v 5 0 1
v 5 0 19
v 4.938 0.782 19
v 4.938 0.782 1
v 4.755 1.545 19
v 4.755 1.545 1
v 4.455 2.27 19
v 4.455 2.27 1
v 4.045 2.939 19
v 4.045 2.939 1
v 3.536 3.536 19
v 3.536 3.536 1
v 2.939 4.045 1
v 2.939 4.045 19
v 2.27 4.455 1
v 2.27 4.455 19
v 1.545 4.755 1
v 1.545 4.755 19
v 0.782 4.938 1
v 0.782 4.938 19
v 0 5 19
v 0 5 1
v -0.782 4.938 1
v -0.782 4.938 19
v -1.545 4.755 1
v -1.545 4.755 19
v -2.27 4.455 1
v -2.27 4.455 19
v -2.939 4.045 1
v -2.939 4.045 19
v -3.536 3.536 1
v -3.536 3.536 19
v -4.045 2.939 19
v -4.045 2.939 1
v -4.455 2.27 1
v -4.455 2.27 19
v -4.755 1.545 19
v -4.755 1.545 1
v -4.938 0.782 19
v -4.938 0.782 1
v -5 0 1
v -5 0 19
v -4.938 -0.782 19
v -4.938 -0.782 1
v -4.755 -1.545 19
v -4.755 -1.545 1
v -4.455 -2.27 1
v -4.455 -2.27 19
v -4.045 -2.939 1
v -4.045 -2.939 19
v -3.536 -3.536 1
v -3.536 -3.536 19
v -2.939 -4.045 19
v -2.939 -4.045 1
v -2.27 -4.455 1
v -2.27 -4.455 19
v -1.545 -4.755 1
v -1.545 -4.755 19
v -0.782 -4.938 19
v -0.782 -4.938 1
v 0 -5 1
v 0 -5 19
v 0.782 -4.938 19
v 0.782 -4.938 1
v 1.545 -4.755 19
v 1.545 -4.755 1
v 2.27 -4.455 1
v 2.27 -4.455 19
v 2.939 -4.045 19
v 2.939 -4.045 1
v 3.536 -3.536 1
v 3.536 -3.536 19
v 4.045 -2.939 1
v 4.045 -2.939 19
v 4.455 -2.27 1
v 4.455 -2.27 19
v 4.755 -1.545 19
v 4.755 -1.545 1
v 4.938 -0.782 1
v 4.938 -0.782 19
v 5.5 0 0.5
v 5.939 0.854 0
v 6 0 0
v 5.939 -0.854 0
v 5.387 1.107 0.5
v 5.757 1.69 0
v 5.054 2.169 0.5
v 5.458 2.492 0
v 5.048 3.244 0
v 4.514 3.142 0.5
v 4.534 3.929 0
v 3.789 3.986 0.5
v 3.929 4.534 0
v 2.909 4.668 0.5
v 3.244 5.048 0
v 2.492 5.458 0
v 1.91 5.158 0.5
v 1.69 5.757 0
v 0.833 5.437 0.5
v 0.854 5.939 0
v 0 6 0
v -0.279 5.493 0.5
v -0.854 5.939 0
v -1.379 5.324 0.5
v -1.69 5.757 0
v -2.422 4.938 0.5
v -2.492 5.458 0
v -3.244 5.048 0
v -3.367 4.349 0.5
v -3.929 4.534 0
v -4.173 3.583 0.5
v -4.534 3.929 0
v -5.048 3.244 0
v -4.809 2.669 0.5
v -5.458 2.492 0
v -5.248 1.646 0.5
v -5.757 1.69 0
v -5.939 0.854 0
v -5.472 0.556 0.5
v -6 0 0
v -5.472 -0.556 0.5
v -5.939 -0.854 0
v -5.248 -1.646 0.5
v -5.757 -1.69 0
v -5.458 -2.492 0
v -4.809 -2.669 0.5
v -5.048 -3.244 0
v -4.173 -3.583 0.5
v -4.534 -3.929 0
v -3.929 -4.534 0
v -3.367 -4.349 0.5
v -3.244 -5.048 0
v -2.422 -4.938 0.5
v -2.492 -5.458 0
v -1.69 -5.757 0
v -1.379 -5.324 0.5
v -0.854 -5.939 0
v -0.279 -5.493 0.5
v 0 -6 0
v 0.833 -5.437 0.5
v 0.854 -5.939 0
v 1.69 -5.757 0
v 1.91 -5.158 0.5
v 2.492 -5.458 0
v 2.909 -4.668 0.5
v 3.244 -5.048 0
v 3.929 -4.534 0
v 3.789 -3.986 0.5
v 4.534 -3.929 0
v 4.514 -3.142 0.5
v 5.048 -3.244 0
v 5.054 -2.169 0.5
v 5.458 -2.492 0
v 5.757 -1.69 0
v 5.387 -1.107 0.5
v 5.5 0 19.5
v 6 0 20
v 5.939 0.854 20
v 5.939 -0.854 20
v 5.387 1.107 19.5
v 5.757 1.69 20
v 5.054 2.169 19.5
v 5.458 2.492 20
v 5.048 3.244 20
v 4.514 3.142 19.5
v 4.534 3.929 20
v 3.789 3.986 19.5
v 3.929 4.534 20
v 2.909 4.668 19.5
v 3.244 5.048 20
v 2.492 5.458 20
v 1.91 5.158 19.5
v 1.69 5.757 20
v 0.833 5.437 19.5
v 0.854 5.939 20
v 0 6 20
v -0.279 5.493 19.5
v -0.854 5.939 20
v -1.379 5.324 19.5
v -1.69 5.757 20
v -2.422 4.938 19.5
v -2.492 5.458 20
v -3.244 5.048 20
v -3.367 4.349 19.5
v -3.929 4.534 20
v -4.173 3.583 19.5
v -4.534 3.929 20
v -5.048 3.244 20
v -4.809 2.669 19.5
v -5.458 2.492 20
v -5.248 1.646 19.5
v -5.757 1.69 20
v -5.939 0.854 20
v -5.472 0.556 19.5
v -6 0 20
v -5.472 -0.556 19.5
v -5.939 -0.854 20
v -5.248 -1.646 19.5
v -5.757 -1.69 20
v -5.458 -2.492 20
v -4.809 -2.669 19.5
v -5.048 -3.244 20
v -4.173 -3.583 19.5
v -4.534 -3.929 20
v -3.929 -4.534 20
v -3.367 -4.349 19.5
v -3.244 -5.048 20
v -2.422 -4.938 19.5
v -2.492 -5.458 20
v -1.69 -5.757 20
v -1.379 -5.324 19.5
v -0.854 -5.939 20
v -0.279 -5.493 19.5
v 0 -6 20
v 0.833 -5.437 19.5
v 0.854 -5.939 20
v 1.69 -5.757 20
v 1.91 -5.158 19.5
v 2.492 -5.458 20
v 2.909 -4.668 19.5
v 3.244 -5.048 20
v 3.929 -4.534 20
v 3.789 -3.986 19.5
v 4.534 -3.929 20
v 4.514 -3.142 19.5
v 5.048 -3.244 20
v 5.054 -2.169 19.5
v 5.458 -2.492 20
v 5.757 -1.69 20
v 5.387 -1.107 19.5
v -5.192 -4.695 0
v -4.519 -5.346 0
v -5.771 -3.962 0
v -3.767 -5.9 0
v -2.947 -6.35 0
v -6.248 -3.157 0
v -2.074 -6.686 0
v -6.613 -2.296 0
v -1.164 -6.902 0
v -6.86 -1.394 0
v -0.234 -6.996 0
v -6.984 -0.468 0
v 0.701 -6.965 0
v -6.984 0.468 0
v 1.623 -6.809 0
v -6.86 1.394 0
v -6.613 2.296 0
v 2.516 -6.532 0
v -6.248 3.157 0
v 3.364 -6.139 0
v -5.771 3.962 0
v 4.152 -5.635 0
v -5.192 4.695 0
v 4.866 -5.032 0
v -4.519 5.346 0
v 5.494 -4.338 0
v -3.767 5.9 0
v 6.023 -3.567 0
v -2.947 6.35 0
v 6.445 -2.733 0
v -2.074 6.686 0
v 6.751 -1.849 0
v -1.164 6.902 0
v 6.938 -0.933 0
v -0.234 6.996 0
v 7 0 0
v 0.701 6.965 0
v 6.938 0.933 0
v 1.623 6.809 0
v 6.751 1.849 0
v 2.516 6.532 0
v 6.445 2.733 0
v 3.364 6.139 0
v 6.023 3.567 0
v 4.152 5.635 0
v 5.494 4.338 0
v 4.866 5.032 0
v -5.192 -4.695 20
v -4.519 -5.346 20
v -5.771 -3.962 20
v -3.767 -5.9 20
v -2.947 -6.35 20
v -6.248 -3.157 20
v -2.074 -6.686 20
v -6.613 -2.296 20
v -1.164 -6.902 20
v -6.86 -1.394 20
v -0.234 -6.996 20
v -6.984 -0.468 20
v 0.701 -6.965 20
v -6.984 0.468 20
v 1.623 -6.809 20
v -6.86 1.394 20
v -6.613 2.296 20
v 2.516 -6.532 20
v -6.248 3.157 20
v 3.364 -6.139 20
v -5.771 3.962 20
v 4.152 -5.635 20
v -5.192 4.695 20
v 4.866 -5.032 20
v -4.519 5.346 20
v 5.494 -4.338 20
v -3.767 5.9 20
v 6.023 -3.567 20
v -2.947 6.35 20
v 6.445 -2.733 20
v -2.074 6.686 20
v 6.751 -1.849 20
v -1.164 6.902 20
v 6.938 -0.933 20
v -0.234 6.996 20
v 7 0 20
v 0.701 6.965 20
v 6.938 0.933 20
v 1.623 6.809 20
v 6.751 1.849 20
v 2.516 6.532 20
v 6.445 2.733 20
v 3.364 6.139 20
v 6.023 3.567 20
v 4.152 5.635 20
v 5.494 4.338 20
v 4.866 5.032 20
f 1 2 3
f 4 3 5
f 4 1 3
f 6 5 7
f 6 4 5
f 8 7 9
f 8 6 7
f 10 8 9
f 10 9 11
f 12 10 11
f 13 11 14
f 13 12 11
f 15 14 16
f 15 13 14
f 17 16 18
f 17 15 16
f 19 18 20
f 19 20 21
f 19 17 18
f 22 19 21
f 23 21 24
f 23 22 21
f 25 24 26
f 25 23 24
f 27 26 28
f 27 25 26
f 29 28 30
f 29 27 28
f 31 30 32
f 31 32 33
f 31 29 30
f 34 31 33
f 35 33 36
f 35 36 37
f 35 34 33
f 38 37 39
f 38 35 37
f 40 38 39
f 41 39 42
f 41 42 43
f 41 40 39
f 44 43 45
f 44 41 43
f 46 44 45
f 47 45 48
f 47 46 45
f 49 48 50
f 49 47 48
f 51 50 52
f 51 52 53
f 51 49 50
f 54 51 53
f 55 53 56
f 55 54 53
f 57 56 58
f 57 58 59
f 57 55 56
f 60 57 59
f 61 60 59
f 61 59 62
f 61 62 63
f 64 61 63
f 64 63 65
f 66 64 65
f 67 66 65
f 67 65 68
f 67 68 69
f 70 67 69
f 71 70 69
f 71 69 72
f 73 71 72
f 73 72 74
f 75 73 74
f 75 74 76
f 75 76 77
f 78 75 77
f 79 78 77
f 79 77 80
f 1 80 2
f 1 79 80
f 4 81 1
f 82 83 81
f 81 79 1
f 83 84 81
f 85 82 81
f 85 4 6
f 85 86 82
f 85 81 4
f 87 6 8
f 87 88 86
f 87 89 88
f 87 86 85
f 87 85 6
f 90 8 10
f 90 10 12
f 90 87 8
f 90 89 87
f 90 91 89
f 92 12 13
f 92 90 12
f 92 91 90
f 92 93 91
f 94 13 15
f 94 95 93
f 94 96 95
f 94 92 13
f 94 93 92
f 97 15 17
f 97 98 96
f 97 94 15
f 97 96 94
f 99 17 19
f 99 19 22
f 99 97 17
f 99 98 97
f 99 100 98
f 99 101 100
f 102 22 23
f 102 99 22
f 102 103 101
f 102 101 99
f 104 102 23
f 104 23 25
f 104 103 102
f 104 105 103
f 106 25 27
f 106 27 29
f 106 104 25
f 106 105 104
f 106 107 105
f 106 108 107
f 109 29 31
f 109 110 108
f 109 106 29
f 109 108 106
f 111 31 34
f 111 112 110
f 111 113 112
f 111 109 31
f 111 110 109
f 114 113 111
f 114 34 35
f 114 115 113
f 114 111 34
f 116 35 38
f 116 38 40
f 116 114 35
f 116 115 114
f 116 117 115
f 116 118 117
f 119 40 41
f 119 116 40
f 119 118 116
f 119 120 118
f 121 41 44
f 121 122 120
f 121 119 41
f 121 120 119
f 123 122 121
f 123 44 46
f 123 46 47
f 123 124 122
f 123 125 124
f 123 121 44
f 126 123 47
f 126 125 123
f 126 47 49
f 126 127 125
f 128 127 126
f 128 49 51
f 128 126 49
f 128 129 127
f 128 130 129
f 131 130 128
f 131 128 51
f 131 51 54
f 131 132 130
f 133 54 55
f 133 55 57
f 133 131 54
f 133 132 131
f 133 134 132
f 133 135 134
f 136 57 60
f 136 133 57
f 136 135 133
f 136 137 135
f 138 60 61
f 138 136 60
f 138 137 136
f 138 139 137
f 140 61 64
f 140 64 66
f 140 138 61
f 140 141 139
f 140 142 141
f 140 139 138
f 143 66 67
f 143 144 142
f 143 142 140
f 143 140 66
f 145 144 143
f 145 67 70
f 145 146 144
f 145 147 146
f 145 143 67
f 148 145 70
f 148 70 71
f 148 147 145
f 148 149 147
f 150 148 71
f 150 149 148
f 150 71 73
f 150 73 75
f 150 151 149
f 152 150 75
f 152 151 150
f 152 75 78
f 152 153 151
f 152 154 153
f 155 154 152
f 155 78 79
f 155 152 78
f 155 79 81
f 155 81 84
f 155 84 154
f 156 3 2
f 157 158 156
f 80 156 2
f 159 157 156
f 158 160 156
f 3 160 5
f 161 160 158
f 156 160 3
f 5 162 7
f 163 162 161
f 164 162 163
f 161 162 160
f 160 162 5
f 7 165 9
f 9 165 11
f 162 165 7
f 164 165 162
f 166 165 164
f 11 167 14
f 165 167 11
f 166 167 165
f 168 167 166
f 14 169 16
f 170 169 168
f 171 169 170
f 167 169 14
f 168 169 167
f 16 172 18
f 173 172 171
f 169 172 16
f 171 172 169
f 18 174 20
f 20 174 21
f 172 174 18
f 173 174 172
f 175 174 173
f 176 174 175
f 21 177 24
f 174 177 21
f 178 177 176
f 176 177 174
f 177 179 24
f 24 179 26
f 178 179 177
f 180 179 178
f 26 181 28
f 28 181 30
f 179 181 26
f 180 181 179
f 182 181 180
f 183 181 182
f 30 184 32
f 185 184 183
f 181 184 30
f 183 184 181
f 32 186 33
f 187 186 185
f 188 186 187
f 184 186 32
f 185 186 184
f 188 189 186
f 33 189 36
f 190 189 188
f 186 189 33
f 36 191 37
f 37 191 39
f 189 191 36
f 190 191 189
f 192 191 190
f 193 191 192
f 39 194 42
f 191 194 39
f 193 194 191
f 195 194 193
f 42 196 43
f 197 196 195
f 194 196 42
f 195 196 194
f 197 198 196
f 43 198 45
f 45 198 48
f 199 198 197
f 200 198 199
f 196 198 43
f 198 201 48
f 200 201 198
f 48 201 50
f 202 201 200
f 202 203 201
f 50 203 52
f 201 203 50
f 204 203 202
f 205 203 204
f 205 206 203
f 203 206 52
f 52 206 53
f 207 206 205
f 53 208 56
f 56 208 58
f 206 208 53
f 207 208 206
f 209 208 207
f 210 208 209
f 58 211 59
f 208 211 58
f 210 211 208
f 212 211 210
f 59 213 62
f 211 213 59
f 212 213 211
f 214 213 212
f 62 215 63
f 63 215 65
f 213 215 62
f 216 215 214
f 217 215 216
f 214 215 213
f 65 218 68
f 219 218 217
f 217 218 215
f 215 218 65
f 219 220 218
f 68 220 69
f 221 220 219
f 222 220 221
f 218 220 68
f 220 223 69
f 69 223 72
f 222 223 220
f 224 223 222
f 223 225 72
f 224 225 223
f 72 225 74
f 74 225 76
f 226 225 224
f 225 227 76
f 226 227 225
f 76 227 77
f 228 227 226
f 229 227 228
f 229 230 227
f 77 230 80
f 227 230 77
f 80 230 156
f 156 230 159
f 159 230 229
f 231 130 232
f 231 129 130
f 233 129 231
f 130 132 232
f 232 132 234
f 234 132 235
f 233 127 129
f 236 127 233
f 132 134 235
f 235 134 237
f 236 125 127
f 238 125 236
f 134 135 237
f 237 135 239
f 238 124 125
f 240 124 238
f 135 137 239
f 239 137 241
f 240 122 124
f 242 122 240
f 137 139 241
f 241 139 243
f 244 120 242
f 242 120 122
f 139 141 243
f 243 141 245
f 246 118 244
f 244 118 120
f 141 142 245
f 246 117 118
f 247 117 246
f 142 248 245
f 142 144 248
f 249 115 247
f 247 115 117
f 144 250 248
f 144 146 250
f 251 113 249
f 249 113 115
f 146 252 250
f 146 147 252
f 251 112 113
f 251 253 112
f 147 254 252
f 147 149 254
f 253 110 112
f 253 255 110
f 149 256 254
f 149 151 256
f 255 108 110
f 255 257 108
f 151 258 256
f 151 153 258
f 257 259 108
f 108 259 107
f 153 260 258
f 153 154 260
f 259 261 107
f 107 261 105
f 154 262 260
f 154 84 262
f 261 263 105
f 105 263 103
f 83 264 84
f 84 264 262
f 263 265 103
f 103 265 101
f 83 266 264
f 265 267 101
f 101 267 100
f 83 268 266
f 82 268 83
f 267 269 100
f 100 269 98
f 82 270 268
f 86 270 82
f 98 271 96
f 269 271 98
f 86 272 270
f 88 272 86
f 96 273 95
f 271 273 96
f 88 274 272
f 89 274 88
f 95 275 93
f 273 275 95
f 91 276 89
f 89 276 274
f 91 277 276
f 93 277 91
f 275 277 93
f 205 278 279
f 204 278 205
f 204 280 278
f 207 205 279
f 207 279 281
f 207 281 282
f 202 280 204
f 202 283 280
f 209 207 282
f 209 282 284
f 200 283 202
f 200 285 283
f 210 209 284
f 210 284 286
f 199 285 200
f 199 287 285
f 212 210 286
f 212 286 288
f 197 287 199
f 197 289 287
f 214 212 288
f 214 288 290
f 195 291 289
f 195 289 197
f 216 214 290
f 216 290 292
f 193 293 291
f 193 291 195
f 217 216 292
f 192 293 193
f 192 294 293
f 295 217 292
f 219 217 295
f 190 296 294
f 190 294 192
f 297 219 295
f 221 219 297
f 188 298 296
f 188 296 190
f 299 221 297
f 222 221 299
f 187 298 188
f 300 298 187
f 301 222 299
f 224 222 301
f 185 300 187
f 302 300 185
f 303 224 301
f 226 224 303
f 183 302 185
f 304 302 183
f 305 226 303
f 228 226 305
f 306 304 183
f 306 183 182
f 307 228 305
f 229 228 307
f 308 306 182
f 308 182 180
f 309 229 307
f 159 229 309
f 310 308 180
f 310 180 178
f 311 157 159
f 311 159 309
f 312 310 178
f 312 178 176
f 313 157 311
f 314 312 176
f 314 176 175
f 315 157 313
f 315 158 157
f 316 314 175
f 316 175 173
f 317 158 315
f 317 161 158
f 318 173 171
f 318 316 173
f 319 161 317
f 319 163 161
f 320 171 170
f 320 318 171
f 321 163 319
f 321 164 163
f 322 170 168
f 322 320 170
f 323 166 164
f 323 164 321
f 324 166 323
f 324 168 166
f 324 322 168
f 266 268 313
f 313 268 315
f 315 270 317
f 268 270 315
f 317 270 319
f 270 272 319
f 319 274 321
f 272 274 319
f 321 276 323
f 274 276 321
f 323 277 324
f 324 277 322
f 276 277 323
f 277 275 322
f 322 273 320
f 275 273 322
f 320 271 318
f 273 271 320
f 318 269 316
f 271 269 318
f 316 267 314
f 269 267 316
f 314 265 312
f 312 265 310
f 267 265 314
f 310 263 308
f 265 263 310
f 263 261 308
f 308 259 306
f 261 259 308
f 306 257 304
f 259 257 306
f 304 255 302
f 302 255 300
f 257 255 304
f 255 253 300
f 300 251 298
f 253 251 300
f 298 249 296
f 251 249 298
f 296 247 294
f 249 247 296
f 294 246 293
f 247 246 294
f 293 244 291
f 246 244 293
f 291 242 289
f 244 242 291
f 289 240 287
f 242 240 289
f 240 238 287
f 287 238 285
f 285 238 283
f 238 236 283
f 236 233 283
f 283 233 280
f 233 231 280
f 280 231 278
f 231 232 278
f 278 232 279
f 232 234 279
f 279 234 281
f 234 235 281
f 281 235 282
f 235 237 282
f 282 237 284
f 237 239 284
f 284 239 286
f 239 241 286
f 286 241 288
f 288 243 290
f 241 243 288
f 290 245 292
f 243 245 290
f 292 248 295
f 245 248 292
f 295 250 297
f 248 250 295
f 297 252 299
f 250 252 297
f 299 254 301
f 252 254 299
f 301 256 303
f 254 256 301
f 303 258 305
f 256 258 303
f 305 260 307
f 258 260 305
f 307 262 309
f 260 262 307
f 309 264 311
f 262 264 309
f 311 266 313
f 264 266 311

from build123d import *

# Parameters (mm, degrees)
SKETCH_R        = 7
SKETCH_R_2      = 5
PAD_DEPTH       = 20
CHAMFER_SIZE    = 1
CHAMFER001_SIZE = 1


with BuildPart() as part:
    # Sketch → Pad (new body)
    with BuildSketch(Plane.XY):
        Circle(SKETCH_R)
        Circle(SKETCH_R_2, mode=Mode.SUBTRACT)
    extrude(amount=PAD_DEPTH)

    # Chamfer
    chamfer_edges = [part.edges().sort_by_distance(p)[0] for p in [
        (-5, 0, 20),
    ]]
    chamfer(chamfer_edges, length=CHAMFER_SIZE)

    # Chamfer001
    chamfer001_edges = [part.edges().sort_by_distance(p)[0] for p in [
        (-5, 0, 0),
    ]]
    chamfer(chamfer001_edges, length=CHAMFER001_SIZE)


solid = part.part
